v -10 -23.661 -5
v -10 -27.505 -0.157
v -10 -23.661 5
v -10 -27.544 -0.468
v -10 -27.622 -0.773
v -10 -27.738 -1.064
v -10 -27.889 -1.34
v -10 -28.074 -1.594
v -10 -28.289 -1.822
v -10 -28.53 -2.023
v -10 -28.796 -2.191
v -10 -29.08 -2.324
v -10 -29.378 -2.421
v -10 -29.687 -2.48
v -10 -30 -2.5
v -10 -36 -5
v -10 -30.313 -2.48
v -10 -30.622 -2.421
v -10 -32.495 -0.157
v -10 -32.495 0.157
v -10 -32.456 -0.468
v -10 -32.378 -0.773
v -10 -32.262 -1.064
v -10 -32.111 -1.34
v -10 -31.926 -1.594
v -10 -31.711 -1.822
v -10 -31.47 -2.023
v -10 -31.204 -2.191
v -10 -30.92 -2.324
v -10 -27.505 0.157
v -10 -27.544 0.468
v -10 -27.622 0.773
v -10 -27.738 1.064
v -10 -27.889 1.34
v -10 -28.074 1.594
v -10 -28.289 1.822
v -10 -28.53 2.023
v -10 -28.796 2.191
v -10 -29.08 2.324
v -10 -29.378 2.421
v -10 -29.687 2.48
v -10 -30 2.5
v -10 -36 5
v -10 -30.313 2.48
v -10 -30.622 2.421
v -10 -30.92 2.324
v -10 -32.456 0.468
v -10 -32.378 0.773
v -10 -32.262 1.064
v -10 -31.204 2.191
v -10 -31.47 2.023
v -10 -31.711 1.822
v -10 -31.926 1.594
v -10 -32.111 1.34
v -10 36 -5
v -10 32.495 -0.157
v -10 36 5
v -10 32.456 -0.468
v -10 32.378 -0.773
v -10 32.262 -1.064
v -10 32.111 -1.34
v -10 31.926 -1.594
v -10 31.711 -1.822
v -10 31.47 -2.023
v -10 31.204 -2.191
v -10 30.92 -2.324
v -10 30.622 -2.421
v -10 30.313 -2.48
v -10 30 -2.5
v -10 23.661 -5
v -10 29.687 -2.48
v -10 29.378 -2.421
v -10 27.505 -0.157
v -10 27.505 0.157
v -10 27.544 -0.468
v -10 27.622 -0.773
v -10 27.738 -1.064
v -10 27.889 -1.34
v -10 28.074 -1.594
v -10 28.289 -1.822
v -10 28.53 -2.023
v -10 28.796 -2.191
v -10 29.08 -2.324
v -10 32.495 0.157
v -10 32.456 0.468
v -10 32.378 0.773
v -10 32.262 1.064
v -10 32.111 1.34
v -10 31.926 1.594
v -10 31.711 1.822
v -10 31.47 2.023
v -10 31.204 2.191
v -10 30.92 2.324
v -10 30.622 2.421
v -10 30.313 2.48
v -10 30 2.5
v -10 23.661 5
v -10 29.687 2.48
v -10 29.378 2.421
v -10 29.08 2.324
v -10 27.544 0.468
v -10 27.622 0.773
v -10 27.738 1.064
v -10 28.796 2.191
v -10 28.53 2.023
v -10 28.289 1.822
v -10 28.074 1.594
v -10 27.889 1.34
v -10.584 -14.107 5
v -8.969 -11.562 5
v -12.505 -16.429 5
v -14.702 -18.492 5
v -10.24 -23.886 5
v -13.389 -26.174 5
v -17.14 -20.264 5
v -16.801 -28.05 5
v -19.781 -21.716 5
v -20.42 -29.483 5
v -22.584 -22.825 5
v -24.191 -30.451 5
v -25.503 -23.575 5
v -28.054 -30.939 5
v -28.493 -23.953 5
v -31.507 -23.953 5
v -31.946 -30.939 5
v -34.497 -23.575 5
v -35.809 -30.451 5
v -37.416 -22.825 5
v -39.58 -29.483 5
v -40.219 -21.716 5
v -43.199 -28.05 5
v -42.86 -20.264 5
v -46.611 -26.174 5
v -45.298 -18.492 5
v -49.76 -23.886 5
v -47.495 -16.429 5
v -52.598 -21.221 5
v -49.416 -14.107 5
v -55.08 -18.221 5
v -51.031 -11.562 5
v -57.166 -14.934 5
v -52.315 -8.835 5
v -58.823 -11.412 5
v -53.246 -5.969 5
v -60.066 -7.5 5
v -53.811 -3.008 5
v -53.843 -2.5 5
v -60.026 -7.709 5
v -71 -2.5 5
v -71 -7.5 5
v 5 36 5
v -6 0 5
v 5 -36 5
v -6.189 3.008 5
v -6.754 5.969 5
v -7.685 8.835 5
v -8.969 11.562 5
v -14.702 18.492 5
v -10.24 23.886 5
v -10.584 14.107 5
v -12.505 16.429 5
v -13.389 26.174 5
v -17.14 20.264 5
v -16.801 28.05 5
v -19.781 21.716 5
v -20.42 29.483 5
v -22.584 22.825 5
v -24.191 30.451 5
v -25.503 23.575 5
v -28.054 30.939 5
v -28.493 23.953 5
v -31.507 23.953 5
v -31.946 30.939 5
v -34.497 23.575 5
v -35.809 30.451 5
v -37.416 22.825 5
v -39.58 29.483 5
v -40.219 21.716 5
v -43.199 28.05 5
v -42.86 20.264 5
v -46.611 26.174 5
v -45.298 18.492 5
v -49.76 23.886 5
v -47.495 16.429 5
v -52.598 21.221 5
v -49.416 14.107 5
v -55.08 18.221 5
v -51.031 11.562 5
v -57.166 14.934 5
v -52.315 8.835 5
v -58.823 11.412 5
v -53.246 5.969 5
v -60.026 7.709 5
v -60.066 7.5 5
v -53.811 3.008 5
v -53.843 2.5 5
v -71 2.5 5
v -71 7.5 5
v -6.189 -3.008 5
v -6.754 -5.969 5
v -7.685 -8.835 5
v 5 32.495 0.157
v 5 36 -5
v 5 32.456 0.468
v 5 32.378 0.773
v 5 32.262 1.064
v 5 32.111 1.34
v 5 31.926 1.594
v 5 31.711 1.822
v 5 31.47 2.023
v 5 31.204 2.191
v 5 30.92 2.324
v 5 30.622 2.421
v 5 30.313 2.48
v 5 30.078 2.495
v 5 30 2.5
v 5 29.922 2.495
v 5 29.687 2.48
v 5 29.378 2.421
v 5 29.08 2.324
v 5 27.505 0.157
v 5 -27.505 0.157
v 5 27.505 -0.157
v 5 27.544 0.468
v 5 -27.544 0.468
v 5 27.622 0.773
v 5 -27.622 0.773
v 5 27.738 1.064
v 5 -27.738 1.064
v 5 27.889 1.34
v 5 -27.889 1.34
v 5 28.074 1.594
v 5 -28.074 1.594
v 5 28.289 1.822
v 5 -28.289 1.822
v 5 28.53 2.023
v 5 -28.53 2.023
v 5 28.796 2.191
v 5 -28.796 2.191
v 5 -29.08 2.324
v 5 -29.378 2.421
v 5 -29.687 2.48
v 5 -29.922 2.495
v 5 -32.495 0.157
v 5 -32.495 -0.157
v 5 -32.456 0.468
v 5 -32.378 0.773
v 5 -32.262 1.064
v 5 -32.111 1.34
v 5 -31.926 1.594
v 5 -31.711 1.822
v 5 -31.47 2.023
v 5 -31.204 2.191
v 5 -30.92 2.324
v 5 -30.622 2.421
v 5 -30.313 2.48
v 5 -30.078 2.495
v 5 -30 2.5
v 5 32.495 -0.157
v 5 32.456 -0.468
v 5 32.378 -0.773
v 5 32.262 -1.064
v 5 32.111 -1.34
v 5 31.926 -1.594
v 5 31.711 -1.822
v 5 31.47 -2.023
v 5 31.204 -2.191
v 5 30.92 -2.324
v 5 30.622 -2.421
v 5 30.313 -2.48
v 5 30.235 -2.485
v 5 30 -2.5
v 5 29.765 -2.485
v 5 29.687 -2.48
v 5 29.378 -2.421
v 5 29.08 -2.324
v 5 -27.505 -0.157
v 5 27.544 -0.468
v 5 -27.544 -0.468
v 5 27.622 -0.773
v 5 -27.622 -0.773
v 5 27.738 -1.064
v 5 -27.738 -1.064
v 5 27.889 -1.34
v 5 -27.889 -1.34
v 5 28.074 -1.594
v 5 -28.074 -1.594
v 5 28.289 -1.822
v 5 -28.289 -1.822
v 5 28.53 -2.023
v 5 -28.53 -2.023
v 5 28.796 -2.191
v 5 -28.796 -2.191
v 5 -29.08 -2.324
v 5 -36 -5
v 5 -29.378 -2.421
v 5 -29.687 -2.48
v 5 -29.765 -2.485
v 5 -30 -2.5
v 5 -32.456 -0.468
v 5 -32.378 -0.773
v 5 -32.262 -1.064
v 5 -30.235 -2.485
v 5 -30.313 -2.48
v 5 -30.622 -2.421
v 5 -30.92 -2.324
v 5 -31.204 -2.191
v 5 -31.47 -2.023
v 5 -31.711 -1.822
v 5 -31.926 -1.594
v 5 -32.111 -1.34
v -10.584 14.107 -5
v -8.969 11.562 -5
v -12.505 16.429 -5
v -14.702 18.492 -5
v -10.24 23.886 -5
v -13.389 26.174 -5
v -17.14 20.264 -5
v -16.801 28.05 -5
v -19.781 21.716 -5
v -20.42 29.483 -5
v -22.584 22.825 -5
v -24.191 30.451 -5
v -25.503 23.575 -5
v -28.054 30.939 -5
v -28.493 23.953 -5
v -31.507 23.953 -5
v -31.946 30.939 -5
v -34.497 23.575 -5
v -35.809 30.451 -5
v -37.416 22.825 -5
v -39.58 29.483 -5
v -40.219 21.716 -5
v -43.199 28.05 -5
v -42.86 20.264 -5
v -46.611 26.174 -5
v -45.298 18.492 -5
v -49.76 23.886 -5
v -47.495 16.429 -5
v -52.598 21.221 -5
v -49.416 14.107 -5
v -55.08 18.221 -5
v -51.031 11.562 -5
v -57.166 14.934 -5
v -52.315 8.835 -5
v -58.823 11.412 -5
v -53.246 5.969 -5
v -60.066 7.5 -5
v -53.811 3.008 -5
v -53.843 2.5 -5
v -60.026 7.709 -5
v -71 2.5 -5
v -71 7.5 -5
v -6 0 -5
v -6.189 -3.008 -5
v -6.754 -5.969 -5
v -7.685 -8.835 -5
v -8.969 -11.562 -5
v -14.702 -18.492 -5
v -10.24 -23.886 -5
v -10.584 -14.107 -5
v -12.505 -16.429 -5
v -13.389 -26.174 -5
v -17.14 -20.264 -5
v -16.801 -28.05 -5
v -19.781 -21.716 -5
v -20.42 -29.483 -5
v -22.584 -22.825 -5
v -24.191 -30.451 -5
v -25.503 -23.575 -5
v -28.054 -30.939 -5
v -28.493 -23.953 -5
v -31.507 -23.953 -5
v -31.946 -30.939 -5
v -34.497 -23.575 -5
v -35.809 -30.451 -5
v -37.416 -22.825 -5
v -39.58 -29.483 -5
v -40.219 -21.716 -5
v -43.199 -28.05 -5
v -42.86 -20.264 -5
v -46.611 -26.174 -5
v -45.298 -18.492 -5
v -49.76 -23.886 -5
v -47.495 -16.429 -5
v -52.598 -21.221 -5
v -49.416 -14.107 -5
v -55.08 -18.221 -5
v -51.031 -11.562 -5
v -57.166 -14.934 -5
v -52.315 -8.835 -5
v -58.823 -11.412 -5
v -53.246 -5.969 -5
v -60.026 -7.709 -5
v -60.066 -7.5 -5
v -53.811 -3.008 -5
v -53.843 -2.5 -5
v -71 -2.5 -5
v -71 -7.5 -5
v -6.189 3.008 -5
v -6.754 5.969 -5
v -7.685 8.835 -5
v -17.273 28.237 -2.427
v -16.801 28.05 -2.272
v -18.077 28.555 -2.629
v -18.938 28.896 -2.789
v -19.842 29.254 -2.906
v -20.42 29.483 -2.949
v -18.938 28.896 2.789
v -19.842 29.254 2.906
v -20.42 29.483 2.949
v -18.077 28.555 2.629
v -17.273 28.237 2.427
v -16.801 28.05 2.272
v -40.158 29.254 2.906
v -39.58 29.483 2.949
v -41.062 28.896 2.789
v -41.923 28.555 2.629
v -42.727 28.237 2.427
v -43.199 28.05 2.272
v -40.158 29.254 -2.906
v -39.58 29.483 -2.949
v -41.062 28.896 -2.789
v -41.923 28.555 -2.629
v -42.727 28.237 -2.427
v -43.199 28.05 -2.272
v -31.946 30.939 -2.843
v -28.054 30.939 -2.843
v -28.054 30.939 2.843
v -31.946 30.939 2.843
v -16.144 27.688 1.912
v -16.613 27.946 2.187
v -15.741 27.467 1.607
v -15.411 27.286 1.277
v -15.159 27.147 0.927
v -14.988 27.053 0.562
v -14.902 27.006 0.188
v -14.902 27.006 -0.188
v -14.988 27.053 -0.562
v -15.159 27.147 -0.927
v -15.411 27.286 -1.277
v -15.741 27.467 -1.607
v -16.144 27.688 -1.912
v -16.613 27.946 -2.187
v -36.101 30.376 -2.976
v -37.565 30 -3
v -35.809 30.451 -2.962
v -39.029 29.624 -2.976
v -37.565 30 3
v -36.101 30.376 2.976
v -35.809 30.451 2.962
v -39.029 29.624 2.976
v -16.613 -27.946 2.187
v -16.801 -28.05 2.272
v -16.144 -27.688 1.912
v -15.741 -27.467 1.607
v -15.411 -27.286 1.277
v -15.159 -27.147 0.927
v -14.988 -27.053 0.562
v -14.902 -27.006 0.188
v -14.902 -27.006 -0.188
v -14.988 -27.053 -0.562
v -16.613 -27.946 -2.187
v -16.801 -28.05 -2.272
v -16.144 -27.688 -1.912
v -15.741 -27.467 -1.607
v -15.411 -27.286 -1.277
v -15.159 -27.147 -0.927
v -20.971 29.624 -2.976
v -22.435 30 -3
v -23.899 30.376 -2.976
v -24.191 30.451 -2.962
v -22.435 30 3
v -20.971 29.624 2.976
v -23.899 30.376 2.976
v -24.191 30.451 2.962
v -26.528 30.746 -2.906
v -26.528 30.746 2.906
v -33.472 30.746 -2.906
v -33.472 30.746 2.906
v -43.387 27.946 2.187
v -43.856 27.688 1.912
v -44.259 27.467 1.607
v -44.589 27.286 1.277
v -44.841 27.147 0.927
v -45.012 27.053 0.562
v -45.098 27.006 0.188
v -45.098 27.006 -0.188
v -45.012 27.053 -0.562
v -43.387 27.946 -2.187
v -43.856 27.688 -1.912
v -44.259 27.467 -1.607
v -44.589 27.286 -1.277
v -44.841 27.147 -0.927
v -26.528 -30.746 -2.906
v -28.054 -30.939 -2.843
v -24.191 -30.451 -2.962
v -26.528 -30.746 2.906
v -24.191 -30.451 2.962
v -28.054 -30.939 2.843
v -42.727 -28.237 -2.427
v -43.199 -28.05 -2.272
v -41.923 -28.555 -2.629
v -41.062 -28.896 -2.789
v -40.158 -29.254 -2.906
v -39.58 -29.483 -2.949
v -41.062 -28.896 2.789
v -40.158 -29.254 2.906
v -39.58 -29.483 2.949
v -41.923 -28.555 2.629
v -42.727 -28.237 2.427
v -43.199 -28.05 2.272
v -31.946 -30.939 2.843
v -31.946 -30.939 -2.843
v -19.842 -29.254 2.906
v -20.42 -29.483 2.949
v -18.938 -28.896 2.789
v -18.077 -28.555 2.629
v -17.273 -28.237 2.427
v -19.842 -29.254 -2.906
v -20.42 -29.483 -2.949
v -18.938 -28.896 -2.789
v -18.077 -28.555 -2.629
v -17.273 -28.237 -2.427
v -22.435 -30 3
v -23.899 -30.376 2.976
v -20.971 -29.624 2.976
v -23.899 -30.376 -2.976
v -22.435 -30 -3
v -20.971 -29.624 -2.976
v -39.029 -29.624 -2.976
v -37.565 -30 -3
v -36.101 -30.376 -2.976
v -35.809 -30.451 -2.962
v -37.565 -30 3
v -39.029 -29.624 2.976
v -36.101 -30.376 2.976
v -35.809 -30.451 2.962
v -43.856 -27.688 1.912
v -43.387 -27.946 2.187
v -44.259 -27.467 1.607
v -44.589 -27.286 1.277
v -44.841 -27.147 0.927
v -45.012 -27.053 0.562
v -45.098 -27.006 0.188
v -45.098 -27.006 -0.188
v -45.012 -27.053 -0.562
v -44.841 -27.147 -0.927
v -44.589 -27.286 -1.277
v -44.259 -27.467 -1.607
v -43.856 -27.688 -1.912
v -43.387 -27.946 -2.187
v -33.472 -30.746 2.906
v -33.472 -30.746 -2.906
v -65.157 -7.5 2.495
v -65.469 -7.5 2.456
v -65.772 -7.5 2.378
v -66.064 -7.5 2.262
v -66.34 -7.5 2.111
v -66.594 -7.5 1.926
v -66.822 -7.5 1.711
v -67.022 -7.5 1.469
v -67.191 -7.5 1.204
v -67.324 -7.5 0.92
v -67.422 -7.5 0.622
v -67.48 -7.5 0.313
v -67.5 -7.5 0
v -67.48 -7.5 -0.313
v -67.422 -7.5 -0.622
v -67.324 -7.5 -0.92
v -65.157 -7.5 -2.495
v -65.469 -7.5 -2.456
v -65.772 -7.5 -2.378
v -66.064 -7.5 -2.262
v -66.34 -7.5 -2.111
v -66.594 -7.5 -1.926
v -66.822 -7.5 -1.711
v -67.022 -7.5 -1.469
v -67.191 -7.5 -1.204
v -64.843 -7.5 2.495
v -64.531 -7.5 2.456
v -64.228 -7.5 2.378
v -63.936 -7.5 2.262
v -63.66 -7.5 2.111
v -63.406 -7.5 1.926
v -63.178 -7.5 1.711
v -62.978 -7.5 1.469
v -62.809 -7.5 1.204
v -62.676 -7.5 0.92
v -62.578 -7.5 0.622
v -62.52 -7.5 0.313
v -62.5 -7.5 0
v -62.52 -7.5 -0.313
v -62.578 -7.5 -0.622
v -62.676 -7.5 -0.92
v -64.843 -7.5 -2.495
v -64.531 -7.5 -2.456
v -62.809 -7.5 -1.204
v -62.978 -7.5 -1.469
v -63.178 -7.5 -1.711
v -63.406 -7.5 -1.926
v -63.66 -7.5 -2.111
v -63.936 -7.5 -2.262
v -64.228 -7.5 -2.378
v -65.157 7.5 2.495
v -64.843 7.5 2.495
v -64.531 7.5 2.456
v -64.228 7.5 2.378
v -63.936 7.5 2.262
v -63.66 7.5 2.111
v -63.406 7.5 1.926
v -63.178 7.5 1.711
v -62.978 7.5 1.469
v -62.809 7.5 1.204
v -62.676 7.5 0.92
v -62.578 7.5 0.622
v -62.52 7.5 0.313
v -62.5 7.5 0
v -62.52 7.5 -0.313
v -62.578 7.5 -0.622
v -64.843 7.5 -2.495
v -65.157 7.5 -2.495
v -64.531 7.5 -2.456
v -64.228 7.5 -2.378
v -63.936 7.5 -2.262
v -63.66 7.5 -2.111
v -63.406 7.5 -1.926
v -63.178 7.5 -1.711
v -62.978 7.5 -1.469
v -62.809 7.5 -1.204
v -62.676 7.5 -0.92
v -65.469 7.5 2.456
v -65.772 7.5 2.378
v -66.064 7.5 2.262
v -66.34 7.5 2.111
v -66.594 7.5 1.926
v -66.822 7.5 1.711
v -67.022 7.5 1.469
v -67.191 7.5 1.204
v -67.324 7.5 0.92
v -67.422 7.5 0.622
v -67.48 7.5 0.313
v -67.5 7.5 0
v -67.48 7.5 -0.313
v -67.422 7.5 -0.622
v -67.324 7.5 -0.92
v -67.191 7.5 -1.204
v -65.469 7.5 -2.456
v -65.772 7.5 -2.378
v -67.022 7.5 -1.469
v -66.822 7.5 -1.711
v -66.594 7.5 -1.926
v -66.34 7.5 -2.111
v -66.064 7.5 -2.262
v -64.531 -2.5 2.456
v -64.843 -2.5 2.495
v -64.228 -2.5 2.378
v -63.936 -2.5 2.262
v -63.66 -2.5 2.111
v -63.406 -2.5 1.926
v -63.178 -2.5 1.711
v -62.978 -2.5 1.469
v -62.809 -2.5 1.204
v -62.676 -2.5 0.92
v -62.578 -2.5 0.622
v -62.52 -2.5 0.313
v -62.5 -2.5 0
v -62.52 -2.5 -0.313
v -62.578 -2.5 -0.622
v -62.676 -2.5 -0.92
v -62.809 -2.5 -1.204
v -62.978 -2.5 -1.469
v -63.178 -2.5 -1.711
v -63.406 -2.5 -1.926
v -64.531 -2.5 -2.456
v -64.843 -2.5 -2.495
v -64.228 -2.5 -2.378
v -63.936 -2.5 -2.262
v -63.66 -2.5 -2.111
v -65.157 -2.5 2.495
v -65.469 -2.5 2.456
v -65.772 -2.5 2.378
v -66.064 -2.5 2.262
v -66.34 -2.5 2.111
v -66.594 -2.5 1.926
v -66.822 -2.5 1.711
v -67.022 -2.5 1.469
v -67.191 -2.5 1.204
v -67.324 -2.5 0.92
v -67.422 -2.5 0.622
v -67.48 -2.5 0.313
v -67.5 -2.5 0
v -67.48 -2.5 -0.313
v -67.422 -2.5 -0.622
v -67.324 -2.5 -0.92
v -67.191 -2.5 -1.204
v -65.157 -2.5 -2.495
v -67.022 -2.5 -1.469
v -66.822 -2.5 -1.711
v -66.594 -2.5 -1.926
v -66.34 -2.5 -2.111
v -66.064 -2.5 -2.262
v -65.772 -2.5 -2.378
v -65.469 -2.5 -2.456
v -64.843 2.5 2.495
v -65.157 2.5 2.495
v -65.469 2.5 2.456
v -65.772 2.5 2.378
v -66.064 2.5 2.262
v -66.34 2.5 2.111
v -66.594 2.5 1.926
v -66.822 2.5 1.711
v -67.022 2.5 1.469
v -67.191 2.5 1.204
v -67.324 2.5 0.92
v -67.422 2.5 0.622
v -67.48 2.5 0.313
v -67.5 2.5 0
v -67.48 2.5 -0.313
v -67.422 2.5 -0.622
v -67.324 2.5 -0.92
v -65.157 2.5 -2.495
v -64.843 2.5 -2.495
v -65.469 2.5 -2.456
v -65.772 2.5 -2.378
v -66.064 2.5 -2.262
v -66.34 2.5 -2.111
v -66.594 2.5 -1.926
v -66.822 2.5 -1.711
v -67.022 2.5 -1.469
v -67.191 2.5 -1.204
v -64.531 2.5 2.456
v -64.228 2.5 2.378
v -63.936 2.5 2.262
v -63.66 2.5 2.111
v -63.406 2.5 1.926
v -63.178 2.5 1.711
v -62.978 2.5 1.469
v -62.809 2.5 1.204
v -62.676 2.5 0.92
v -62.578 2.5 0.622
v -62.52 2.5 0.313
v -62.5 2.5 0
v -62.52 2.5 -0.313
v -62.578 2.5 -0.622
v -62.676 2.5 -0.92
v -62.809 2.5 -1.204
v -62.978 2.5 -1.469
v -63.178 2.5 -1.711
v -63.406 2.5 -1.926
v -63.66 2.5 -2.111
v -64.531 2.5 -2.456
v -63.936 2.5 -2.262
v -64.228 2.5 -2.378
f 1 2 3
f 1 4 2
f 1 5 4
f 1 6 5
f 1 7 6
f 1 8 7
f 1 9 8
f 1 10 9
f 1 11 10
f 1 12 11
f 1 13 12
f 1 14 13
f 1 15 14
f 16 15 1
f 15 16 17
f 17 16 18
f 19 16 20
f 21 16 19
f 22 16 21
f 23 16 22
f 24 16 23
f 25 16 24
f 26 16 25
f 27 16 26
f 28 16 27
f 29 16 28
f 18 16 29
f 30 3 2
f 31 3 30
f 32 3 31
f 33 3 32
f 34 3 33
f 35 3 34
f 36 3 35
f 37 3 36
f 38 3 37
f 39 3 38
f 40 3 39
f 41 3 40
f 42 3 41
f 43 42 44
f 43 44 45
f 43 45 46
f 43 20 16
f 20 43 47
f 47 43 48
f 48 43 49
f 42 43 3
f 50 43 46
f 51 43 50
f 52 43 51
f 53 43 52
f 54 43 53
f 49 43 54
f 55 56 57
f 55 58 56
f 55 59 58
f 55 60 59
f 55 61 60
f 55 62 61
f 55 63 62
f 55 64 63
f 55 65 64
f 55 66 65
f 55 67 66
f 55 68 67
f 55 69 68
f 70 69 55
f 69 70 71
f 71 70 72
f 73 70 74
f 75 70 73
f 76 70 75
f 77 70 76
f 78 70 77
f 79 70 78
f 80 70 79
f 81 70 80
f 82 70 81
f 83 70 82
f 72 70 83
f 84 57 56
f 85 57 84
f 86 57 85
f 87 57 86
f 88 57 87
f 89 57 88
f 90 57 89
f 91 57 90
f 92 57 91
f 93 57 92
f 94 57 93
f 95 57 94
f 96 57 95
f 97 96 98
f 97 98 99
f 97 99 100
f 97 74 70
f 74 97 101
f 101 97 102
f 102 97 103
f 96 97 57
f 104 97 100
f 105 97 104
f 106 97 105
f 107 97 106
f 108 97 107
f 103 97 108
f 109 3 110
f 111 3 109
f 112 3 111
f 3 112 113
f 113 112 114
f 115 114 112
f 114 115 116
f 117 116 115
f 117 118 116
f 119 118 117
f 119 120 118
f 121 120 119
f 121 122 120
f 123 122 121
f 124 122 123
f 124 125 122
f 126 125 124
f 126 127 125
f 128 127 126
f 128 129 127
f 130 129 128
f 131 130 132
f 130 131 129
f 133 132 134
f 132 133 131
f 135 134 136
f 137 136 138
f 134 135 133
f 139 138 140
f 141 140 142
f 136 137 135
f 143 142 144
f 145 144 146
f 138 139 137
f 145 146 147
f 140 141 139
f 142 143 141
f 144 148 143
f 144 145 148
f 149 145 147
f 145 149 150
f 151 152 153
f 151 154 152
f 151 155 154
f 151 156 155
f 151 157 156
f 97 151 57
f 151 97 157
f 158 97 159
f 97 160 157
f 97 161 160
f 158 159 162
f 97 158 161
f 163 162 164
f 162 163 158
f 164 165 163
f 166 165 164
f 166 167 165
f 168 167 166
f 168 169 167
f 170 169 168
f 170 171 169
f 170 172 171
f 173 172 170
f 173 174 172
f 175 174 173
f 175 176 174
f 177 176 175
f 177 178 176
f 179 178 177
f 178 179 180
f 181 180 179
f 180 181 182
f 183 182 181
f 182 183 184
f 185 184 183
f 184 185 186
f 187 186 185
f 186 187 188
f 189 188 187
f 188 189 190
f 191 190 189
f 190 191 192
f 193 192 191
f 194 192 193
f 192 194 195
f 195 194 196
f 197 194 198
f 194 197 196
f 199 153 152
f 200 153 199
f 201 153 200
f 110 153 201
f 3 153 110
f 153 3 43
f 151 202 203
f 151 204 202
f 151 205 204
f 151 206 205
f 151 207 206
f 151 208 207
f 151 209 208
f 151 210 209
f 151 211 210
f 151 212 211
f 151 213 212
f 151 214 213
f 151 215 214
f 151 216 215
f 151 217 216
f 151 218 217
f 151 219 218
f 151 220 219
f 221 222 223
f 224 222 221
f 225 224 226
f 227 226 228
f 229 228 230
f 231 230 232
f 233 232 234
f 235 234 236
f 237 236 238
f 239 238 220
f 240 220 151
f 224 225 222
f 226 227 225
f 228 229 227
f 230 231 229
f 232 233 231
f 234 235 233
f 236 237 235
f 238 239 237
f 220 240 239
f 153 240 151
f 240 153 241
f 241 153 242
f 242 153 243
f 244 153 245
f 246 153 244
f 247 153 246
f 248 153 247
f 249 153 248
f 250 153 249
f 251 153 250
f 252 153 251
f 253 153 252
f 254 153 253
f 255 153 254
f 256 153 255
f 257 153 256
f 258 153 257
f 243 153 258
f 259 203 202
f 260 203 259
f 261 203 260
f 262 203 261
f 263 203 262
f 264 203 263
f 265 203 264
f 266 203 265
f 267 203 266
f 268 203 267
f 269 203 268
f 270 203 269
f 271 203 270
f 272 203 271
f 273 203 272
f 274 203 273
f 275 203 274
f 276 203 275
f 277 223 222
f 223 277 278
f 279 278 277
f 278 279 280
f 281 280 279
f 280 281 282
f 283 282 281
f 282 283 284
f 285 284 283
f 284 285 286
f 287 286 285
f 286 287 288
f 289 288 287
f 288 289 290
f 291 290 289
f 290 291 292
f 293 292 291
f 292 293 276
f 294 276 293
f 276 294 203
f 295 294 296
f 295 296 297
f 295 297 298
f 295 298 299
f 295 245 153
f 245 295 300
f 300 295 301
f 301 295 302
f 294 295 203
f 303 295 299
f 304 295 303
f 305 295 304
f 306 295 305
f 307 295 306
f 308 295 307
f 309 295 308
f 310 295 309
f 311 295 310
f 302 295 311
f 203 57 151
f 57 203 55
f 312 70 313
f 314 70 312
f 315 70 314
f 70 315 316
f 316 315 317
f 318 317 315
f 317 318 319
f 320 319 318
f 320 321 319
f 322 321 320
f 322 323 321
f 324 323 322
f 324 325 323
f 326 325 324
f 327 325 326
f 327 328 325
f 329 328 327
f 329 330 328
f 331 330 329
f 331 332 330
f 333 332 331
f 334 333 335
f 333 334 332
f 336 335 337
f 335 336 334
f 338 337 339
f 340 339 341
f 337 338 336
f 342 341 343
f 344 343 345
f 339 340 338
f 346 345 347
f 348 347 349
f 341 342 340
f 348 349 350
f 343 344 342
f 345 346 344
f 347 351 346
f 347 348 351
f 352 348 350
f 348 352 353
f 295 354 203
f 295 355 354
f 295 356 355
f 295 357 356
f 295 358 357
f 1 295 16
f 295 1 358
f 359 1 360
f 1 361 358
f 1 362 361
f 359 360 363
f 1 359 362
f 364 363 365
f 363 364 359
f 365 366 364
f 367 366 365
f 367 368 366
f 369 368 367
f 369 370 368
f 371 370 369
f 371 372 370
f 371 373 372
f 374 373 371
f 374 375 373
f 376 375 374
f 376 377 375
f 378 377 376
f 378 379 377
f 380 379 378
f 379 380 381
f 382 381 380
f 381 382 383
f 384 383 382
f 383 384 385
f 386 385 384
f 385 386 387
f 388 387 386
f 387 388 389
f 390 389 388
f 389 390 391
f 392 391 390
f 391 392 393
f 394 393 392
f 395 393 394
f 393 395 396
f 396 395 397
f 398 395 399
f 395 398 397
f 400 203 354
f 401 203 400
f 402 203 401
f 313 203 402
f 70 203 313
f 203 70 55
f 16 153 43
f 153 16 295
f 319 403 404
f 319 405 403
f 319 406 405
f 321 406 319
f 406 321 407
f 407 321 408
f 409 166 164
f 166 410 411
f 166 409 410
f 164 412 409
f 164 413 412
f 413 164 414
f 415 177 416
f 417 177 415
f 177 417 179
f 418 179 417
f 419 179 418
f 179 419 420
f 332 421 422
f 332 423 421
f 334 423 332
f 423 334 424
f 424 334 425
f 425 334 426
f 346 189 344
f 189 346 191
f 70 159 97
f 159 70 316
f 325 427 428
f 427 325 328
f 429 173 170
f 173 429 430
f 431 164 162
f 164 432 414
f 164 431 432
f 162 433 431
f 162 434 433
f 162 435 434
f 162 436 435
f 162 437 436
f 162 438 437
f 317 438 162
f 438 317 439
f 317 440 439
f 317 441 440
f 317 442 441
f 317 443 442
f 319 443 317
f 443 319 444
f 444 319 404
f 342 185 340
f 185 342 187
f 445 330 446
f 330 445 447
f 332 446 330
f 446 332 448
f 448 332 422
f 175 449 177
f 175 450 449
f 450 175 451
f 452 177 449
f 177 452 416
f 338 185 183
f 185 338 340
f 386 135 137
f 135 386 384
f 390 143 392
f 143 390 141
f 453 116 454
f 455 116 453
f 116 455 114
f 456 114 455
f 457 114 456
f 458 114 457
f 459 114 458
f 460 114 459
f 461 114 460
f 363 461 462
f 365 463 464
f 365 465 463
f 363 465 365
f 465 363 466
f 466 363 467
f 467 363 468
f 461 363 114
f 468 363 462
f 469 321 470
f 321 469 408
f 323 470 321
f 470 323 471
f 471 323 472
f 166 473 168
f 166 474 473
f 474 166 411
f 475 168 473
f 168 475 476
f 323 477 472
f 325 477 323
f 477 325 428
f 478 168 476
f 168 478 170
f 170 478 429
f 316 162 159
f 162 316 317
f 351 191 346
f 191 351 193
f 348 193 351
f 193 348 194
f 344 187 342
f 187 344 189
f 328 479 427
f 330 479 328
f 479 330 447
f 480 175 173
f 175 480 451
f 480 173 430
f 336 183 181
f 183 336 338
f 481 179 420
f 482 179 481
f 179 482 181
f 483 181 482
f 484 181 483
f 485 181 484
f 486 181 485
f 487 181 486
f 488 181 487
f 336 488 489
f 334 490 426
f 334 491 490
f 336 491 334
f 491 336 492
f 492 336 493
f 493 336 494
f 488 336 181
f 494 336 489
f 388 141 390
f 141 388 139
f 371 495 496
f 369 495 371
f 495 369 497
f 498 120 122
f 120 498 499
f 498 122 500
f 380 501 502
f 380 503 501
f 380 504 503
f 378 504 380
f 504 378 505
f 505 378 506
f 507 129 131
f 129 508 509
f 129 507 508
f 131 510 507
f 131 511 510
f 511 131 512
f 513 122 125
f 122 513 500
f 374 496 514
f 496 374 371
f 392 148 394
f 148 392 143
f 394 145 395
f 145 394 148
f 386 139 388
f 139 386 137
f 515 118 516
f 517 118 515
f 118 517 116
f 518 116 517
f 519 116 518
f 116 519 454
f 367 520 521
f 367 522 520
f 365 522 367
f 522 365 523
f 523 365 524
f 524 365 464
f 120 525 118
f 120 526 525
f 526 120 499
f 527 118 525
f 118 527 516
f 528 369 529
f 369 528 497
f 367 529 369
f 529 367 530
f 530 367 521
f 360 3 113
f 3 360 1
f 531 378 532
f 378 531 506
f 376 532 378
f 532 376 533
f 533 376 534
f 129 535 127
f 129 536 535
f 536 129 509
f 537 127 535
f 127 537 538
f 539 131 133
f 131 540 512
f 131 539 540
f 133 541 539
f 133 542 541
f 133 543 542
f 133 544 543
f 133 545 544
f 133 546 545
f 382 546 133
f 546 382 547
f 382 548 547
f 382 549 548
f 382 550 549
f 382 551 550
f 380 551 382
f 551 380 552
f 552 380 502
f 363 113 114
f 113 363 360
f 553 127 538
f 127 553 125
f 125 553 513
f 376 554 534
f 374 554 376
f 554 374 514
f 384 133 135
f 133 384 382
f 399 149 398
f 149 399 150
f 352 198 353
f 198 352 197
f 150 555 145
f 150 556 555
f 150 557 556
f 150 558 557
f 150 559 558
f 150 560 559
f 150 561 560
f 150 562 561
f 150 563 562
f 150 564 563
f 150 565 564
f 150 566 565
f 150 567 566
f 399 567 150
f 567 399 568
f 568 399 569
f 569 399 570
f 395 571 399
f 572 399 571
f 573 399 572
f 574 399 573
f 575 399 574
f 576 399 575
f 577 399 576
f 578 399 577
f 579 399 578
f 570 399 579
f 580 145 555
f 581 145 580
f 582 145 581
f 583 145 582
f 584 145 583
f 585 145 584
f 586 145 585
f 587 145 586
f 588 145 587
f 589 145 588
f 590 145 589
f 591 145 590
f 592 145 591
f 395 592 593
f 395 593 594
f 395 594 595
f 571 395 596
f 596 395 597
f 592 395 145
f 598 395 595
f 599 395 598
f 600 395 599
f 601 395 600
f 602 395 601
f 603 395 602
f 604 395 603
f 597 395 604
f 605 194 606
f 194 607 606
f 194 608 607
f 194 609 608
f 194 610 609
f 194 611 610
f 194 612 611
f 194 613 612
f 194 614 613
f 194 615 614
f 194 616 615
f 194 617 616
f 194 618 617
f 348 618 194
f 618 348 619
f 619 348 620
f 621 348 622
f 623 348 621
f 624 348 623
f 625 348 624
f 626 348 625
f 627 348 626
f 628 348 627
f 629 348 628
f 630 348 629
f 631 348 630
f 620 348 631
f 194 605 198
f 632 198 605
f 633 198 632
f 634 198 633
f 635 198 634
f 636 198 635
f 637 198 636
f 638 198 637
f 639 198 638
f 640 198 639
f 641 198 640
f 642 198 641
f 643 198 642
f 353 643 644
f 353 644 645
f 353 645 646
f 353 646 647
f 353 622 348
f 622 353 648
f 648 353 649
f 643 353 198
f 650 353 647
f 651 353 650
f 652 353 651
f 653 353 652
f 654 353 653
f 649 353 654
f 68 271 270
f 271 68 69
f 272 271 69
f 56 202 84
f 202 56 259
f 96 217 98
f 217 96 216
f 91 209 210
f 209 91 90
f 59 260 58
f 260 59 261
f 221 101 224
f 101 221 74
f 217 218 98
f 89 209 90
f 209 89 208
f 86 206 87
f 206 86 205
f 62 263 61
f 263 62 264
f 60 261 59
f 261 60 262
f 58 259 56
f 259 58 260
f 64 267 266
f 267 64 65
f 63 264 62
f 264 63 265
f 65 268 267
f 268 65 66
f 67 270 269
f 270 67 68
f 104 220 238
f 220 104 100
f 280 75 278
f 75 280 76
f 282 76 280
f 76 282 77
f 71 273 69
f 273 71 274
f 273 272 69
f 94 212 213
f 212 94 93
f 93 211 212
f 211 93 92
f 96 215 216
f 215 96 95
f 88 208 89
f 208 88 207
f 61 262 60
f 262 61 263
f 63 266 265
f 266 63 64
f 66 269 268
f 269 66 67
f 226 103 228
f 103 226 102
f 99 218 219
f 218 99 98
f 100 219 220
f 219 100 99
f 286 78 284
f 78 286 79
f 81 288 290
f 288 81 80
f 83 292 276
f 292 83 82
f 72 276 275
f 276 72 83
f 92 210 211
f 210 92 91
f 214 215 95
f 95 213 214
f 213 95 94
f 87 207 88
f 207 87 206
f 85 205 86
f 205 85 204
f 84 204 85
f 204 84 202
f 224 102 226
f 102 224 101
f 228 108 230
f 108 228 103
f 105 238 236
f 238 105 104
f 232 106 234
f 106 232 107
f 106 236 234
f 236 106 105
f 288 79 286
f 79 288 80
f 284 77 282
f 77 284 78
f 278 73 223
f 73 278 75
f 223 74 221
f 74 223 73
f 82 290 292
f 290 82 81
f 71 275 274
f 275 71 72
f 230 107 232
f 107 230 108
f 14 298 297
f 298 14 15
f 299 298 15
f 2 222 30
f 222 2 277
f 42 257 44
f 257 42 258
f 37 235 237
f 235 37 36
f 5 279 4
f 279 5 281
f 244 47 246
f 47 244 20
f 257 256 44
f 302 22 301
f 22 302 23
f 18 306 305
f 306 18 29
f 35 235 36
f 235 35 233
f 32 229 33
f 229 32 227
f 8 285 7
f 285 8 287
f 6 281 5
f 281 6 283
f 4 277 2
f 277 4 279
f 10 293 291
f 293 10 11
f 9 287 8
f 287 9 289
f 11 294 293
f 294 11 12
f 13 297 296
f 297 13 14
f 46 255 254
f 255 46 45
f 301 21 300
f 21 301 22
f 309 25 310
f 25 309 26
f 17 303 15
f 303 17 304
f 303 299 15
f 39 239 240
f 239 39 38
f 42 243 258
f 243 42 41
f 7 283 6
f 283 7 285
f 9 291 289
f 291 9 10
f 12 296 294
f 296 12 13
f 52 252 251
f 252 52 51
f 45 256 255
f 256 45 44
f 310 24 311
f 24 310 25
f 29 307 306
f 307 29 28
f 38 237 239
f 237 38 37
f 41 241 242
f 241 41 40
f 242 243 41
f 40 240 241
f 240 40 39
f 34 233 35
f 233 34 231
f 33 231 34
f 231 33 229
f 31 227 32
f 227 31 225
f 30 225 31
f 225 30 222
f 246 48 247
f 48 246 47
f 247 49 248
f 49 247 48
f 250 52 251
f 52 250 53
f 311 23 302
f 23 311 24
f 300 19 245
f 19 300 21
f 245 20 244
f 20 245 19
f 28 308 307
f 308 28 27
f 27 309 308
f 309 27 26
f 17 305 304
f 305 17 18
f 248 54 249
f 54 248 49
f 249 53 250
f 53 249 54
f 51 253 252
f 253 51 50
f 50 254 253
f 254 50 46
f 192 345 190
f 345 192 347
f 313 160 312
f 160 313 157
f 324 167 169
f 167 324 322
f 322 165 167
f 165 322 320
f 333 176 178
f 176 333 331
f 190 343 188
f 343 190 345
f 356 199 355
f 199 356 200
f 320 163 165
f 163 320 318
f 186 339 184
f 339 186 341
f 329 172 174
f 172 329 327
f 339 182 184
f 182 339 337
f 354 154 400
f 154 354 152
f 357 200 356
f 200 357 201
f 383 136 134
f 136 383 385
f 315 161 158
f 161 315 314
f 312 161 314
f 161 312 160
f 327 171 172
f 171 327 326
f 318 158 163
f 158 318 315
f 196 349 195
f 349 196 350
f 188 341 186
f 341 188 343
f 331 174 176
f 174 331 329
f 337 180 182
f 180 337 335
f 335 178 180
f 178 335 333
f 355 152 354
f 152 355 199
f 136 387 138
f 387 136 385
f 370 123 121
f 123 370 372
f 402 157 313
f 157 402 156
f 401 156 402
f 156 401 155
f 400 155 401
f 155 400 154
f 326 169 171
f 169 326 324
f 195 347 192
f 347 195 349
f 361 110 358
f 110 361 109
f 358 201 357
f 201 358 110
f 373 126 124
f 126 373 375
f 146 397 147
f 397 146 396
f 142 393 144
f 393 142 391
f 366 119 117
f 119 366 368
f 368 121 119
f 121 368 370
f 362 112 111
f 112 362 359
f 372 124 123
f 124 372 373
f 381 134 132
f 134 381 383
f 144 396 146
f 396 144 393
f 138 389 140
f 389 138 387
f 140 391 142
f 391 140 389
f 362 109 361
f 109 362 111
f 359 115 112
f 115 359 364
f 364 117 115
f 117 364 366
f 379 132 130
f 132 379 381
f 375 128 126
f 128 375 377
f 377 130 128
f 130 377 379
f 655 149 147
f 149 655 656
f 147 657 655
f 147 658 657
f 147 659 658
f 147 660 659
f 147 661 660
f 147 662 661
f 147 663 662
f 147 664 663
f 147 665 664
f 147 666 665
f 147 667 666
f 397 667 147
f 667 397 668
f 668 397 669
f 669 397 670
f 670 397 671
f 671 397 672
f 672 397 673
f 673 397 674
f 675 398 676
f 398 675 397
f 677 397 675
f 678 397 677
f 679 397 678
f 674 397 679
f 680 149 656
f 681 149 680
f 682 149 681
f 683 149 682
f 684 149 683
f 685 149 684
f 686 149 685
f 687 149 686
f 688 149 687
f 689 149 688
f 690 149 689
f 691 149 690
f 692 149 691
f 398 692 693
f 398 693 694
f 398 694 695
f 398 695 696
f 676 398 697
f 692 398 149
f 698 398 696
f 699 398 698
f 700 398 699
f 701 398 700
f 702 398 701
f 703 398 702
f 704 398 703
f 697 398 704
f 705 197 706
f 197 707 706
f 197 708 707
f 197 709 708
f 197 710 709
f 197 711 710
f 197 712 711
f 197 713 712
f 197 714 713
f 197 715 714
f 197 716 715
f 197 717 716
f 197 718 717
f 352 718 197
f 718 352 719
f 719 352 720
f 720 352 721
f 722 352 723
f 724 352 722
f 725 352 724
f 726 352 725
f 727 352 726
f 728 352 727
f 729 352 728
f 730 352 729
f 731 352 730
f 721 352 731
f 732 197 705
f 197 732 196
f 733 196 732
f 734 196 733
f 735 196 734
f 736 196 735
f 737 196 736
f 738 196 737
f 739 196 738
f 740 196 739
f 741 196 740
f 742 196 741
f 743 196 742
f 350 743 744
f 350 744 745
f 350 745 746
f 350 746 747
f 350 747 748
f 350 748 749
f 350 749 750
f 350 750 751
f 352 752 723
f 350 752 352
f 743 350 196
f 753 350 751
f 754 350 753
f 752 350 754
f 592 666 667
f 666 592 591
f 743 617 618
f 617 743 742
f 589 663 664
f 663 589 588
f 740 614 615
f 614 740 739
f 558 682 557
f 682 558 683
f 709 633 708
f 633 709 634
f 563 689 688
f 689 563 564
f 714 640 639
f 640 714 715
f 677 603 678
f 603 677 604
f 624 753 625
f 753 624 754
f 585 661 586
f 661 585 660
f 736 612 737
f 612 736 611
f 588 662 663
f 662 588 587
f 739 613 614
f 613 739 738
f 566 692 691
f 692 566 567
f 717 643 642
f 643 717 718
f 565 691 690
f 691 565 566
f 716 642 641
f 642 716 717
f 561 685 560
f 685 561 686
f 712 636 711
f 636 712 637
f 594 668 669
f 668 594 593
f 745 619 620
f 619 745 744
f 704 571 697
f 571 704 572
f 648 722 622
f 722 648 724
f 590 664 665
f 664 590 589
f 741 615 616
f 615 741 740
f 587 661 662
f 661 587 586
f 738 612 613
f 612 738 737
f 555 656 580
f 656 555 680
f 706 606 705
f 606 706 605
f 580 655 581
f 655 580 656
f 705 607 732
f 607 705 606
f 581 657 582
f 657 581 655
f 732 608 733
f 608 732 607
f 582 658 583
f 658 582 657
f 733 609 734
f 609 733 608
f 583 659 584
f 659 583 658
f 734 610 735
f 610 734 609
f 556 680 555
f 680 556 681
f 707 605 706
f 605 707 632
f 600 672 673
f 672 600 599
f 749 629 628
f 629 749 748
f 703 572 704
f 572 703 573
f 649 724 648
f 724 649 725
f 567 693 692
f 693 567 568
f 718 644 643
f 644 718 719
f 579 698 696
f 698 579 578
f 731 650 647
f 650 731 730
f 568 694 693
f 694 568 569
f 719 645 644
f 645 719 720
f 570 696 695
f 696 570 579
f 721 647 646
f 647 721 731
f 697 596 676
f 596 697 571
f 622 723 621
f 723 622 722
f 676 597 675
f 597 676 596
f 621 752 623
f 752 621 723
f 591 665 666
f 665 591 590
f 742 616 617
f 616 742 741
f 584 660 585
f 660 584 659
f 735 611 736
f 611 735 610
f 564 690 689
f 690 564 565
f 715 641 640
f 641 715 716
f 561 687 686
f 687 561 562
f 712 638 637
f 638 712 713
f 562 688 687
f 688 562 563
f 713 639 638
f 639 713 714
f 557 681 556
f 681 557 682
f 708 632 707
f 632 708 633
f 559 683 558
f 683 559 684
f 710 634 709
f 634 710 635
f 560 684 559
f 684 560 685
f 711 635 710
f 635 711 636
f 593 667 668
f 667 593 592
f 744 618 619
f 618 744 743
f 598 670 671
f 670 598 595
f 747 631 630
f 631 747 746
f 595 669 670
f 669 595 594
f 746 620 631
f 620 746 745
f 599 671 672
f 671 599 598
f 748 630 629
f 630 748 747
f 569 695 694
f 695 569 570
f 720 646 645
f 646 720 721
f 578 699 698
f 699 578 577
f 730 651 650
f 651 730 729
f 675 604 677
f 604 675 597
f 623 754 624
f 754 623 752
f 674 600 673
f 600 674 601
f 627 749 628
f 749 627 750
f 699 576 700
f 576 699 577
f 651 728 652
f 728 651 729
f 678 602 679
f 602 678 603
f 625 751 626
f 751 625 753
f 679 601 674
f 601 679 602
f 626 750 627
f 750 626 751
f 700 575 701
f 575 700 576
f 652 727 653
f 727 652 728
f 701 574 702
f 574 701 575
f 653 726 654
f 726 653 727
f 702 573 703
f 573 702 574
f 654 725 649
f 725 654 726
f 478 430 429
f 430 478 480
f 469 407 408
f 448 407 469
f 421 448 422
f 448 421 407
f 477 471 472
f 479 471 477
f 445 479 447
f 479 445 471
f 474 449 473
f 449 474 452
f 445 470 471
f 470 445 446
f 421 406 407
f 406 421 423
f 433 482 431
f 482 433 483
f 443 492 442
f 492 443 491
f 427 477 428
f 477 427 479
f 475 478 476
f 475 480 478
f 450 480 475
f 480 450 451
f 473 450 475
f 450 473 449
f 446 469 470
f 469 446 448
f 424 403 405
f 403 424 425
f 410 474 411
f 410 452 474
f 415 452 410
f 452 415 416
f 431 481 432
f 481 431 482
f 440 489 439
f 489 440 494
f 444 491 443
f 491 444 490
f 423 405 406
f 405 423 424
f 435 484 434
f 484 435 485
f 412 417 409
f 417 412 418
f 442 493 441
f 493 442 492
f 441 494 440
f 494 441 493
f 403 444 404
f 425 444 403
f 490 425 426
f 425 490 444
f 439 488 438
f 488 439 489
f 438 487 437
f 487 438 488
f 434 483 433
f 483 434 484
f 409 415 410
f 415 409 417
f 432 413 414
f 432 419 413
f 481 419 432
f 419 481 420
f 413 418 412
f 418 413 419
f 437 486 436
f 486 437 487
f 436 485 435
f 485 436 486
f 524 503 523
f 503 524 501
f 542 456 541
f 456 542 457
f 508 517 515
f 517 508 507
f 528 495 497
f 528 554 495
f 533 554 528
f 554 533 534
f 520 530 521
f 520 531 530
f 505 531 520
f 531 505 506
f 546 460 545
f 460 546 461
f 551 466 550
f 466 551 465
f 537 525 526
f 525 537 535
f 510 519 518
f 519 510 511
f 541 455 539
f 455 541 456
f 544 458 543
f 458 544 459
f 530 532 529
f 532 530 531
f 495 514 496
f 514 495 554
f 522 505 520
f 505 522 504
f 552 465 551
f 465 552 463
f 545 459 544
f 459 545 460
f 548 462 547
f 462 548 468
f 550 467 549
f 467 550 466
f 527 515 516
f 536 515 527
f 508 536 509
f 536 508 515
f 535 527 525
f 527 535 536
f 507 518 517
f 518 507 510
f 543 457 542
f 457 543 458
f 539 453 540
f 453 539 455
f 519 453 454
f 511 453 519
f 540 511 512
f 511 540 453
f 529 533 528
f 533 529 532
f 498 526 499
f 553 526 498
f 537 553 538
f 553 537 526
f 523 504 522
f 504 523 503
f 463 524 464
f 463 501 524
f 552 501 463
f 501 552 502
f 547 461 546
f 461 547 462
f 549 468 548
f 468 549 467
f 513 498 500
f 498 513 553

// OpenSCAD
// par X. HINAULT
// avril 2015 - Juillet 2016

$fn=50;

// variable du chariot
beam=20;
bearing=13;
correct=0.1;


// longtout=24+bearing*2; // longueur totale sens "largeur"

largtout=60; // écartement des trous, calculé

difference() {

	union() {
		translate([-5/2,0,0])cube([15,largtout+12,10], center=true); 
		translate([-30,0,0])cylinder(h=10, r=31, $fn=50, center=true); 

		translate([-60,0,0])cube([22,15,10], center=true);

	}

	// trous fixation chariot
	//rotate([0,90,0])translate([0,longtout/2-bearing/2+1,0])#cylinder(h=20, r=2.5, $fn=50, center=true);
	//rotate([0,90,0])translate([0,-(longtout/2-bearing/2+1),0])#cylinder(h=20, r=2.5, $fn=50, center=true);

	rotate([0,90,0])translate([0,largtout/2,0])#cylinder(h=20, r=2.5, $fn=50, center=true);
	rotate([0,90,0])translate([0,-(largtout/2),0])#cylinder(h=20, r=2.5, $fn=50, center=true);

	// empreinte vis chariot
	//#rotate([0,90,0])translate([0,0,6/2])cube([12,25,6],center=true);

	//translate([6/2,beam/2+bearing/2-correct,0])rotate([0,90,0])cube([12,10,6],center=true);
	//translate([6/2,-(beam/2+bearing/2-correct),0])rotate([0,90,0])cube([12,10,6],center=true);

	//translate([6/2,beam/2+bearing/2-correct,0])rotate([0,90,0])cylinder(h=20, r=2.35, $fn=50, center=true);
	//translate([6/2,-(beam/2+bearing/2-correct),0])rotate([0,90,0])cylinder(h=20, r=2.35, $fn=50, center=true);

	// support outil
	#translate([-30,0,0])cylinder(h=20, r=24, $fn=50, center=true); 

	//translate([-20,0,0])rotate([0,90,0])#cylinder(h=20, r=1.5, $fn=50, center=true);

	#translate([-55,0,0])cube([40,5,12], center=true);

	#translate([-65,0,0])rotate([90,0,0])cylinder(h=20, r=2.5, $fn=50, center=true); // axe serrage
	
	// guide tourne vis
	rotate([0,90,0])translate([0,largtout/2,-30])#cylinder(h=35, r=3, $fn=50, center=true);
	rotate([0,90,0])translate([0,-(largtout/2),-30])#cylinder(h=35, r=3, $fn=50, center=true);
	
}
